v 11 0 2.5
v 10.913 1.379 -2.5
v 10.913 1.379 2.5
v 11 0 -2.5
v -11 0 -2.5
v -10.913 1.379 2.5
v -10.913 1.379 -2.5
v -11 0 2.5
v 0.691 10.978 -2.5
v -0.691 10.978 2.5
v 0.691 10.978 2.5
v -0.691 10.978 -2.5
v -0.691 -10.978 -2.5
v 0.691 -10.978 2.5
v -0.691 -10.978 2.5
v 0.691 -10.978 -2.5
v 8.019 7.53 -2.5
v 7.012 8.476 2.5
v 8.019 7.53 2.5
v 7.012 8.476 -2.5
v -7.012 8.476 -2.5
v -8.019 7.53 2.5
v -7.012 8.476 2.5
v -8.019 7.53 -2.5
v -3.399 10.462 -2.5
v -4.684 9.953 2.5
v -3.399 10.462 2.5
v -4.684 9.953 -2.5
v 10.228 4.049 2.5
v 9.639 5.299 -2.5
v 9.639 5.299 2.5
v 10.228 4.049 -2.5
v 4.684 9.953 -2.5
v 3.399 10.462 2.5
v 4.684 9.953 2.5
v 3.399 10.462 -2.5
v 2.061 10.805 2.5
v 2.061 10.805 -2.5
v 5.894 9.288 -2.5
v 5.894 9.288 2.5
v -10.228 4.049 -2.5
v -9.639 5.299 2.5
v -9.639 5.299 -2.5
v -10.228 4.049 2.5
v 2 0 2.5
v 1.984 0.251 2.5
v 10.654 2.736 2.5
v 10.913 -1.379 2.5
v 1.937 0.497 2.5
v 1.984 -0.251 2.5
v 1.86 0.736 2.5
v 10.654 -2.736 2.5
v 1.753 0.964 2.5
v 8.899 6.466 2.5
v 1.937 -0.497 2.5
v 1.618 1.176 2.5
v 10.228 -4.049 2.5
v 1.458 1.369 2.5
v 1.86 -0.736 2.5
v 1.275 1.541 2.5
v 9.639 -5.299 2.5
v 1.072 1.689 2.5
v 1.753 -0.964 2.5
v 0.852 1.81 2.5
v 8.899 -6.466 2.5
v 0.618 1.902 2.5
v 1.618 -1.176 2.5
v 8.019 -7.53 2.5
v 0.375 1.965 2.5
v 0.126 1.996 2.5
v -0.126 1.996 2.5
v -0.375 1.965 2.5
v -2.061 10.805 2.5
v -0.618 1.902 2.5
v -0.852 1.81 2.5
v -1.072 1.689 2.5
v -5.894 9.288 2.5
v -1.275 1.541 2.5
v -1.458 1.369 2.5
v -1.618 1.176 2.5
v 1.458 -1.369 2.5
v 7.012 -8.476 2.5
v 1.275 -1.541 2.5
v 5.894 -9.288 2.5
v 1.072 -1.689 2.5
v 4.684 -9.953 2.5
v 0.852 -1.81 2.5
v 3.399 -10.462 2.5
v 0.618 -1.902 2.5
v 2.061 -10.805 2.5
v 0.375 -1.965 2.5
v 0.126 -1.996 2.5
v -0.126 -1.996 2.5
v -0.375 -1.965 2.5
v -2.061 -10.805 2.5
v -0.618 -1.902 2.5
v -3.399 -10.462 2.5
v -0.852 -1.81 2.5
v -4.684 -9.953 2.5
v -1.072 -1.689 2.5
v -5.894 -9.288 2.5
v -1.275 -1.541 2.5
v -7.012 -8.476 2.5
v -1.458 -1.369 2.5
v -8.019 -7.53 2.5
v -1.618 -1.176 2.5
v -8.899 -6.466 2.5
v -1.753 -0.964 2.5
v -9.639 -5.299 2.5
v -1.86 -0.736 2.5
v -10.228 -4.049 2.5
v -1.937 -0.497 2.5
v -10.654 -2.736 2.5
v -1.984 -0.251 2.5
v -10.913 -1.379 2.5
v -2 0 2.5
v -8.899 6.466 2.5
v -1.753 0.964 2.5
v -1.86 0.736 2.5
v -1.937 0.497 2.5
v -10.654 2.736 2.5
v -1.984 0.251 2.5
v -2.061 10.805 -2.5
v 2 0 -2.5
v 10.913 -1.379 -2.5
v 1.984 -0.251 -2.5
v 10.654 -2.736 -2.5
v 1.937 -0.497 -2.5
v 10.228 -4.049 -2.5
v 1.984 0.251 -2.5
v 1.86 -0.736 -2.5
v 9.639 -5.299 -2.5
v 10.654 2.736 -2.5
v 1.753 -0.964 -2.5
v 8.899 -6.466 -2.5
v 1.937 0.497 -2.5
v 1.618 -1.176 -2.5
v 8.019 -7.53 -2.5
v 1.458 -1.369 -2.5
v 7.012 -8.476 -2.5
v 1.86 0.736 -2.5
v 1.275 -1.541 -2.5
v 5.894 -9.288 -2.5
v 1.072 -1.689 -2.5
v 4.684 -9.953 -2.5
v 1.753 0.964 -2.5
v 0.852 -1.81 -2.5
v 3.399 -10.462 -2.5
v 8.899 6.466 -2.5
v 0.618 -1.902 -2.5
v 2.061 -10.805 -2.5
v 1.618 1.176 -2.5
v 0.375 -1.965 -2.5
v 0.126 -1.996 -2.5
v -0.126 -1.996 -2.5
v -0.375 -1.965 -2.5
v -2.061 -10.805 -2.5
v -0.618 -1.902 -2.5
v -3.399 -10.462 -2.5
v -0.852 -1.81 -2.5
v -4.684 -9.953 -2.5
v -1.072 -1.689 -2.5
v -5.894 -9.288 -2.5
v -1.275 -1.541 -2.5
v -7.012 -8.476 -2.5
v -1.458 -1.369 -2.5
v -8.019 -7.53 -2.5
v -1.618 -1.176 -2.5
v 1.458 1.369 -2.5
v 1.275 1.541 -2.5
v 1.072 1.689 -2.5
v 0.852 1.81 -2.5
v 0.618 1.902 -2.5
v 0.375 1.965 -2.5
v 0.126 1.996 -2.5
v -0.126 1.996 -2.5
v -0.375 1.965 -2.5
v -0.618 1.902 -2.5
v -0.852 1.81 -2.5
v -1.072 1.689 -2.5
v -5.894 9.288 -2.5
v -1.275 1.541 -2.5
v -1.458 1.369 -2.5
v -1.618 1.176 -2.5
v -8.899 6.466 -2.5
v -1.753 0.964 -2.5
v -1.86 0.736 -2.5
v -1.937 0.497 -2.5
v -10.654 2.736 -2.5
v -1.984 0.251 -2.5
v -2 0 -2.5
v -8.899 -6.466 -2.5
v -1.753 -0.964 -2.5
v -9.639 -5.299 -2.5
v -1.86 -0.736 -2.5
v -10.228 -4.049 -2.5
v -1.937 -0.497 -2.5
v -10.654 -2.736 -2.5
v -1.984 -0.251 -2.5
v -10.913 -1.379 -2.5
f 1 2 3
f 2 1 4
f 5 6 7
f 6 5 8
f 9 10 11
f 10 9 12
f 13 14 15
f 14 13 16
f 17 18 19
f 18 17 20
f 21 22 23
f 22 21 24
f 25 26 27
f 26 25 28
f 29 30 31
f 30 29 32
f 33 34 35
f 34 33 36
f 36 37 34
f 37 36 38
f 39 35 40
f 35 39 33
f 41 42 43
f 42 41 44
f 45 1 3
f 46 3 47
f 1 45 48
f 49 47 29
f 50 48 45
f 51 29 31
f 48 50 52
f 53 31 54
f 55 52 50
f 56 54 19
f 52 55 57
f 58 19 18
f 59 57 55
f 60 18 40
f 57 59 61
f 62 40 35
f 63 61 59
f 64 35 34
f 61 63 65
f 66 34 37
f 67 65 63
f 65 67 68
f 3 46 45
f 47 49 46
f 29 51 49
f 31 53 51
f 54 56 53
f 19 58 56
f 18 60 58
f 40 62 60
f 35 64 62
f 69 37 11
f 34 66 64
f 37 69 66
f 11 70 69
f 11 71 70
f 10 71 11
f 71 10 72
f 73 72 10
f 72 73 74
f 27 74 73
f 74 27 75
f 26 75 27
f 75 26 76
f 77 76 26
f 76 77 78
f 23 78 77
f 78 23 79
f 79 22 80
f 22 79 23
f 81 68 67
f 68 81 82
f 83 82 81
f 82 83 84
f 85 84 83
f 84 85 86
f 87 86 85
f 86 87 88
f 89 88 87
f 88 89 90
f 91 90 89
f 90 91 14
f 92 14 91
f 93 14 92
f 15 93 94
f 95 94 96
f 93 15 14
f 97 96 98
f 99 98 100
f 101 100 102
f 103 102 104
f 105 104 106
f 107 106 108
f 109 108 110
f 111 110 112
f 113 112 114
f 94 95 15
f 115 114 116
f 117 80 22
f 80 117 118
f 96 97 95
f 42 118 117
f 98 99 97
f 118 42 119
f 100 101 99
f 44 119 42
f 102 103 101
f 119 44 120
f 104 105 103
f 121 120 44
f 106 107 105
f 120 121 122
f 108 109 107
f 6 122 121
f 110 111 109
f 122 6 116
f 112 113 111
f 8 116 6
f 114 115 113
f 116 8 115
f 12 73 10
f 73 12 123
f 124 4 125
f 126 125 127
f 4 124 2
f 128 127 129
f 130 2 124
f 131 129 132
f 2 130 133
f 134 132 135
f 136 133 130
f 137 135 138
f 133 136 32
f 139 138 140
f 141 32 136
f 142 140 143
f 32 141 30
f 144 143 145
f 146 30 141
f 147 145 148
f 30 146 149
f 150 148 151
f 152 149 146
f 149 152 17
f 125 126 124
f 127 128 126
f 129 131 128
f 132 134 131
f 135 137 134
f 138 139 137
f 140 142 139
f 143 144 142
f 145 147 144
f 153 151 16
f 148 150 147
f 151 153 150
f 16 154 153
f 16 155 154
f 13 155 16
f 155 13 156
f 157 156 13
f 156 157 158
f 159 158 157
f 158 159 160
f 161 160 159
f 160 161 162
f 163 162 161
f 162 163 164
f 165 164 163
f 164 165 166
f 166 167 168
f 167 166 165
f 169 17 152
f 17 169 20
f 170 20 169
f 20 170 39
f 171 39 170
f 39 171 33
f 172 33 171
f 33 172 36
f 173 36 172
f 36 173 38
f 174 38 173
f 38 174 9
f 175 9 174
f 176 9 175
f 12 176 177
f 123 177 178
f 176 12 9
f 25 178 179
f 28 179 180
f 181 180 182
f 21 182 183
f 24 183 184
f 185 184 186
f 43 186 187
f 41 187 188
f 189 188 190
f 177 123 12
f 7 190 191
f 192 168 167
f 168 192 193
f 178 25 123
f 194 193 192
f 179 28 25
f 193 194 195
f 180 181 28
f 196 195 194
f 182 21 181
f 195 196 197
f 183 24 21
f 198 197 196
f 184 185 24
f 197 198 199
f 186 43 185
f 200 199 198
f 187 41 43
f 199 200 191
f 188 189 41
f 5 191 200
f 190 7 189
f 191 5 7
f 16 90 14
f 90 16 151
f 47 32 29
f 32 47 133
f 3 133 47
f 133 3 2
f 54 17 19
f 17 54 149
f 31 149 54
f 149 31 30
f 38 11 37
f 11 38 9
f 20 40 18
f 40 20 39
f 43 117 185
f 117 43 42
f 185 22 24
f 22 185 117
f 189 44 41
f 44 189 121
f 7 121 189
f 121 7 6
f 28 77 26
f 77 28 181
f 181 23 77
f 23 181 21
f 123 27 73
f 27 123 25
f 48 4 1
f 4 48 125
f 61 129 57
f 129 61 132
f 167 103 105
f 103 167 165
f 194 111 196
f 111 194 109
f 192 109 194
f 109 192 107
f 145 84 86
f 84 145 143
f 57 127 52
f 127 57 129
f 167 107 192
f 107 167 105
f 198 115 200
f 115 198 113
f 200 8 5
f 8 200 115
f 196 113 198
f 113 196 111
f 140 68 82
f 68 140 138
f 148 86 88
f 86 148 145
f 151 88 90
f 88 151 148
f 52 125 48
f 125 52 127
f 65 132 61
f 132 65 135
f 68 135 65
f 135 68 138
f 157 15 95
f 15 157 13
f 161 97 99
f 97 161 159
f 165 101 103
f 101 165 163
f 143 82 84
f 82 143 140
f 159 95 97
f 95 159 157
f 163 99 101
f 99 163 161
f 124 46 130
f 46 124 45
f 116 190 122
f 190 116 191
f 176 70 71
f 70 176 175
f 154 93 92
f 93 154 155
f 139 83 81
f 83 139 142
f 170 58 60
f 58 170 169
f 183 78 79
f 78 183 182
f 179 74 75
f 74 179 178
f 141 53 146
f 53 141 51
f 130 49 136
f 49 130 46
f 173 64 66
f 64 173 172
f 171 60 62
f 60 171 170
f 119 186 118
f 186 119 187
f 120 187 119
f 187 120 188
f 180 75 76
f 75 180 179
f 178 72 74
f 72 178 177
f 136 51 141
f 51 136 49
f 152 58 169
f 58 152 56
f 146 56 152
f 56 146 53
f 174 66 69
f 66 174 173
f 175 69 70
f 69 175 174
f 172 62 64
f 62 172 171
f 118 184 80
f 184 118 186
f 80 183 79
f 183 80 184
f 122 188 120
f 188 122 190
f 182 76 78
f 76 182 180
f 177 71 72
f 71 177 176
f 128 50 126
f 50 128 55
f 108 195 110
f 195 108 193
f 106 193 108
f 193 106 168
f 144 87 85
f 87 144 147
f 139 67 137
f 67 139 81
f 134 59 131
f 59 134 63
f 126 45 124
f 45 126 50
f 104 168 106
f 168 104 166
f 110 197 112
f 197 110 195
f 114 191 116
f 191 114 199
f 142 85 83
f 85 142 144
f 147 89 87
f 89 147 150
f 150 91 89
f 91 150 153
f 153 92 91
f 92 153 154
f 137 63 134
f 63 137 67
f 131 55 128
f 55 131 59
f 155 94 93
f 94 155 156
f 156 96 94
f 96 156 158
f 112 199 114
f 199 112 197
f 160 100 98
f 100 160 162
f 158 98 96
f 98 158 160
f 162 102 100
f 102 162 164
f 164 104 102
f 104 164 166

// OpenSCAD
$fn = 50;


difference() {
	union() {
		translate(v = [0, 0, -2.5000000000]) {
			cylinder(h = 5, r = 11.0000000000);
		}
	}
	union() {
		translate(v = [0, 0, -100.0000000000]) {
			cylinder(h = 200, r = 2);
		}
	}
}
